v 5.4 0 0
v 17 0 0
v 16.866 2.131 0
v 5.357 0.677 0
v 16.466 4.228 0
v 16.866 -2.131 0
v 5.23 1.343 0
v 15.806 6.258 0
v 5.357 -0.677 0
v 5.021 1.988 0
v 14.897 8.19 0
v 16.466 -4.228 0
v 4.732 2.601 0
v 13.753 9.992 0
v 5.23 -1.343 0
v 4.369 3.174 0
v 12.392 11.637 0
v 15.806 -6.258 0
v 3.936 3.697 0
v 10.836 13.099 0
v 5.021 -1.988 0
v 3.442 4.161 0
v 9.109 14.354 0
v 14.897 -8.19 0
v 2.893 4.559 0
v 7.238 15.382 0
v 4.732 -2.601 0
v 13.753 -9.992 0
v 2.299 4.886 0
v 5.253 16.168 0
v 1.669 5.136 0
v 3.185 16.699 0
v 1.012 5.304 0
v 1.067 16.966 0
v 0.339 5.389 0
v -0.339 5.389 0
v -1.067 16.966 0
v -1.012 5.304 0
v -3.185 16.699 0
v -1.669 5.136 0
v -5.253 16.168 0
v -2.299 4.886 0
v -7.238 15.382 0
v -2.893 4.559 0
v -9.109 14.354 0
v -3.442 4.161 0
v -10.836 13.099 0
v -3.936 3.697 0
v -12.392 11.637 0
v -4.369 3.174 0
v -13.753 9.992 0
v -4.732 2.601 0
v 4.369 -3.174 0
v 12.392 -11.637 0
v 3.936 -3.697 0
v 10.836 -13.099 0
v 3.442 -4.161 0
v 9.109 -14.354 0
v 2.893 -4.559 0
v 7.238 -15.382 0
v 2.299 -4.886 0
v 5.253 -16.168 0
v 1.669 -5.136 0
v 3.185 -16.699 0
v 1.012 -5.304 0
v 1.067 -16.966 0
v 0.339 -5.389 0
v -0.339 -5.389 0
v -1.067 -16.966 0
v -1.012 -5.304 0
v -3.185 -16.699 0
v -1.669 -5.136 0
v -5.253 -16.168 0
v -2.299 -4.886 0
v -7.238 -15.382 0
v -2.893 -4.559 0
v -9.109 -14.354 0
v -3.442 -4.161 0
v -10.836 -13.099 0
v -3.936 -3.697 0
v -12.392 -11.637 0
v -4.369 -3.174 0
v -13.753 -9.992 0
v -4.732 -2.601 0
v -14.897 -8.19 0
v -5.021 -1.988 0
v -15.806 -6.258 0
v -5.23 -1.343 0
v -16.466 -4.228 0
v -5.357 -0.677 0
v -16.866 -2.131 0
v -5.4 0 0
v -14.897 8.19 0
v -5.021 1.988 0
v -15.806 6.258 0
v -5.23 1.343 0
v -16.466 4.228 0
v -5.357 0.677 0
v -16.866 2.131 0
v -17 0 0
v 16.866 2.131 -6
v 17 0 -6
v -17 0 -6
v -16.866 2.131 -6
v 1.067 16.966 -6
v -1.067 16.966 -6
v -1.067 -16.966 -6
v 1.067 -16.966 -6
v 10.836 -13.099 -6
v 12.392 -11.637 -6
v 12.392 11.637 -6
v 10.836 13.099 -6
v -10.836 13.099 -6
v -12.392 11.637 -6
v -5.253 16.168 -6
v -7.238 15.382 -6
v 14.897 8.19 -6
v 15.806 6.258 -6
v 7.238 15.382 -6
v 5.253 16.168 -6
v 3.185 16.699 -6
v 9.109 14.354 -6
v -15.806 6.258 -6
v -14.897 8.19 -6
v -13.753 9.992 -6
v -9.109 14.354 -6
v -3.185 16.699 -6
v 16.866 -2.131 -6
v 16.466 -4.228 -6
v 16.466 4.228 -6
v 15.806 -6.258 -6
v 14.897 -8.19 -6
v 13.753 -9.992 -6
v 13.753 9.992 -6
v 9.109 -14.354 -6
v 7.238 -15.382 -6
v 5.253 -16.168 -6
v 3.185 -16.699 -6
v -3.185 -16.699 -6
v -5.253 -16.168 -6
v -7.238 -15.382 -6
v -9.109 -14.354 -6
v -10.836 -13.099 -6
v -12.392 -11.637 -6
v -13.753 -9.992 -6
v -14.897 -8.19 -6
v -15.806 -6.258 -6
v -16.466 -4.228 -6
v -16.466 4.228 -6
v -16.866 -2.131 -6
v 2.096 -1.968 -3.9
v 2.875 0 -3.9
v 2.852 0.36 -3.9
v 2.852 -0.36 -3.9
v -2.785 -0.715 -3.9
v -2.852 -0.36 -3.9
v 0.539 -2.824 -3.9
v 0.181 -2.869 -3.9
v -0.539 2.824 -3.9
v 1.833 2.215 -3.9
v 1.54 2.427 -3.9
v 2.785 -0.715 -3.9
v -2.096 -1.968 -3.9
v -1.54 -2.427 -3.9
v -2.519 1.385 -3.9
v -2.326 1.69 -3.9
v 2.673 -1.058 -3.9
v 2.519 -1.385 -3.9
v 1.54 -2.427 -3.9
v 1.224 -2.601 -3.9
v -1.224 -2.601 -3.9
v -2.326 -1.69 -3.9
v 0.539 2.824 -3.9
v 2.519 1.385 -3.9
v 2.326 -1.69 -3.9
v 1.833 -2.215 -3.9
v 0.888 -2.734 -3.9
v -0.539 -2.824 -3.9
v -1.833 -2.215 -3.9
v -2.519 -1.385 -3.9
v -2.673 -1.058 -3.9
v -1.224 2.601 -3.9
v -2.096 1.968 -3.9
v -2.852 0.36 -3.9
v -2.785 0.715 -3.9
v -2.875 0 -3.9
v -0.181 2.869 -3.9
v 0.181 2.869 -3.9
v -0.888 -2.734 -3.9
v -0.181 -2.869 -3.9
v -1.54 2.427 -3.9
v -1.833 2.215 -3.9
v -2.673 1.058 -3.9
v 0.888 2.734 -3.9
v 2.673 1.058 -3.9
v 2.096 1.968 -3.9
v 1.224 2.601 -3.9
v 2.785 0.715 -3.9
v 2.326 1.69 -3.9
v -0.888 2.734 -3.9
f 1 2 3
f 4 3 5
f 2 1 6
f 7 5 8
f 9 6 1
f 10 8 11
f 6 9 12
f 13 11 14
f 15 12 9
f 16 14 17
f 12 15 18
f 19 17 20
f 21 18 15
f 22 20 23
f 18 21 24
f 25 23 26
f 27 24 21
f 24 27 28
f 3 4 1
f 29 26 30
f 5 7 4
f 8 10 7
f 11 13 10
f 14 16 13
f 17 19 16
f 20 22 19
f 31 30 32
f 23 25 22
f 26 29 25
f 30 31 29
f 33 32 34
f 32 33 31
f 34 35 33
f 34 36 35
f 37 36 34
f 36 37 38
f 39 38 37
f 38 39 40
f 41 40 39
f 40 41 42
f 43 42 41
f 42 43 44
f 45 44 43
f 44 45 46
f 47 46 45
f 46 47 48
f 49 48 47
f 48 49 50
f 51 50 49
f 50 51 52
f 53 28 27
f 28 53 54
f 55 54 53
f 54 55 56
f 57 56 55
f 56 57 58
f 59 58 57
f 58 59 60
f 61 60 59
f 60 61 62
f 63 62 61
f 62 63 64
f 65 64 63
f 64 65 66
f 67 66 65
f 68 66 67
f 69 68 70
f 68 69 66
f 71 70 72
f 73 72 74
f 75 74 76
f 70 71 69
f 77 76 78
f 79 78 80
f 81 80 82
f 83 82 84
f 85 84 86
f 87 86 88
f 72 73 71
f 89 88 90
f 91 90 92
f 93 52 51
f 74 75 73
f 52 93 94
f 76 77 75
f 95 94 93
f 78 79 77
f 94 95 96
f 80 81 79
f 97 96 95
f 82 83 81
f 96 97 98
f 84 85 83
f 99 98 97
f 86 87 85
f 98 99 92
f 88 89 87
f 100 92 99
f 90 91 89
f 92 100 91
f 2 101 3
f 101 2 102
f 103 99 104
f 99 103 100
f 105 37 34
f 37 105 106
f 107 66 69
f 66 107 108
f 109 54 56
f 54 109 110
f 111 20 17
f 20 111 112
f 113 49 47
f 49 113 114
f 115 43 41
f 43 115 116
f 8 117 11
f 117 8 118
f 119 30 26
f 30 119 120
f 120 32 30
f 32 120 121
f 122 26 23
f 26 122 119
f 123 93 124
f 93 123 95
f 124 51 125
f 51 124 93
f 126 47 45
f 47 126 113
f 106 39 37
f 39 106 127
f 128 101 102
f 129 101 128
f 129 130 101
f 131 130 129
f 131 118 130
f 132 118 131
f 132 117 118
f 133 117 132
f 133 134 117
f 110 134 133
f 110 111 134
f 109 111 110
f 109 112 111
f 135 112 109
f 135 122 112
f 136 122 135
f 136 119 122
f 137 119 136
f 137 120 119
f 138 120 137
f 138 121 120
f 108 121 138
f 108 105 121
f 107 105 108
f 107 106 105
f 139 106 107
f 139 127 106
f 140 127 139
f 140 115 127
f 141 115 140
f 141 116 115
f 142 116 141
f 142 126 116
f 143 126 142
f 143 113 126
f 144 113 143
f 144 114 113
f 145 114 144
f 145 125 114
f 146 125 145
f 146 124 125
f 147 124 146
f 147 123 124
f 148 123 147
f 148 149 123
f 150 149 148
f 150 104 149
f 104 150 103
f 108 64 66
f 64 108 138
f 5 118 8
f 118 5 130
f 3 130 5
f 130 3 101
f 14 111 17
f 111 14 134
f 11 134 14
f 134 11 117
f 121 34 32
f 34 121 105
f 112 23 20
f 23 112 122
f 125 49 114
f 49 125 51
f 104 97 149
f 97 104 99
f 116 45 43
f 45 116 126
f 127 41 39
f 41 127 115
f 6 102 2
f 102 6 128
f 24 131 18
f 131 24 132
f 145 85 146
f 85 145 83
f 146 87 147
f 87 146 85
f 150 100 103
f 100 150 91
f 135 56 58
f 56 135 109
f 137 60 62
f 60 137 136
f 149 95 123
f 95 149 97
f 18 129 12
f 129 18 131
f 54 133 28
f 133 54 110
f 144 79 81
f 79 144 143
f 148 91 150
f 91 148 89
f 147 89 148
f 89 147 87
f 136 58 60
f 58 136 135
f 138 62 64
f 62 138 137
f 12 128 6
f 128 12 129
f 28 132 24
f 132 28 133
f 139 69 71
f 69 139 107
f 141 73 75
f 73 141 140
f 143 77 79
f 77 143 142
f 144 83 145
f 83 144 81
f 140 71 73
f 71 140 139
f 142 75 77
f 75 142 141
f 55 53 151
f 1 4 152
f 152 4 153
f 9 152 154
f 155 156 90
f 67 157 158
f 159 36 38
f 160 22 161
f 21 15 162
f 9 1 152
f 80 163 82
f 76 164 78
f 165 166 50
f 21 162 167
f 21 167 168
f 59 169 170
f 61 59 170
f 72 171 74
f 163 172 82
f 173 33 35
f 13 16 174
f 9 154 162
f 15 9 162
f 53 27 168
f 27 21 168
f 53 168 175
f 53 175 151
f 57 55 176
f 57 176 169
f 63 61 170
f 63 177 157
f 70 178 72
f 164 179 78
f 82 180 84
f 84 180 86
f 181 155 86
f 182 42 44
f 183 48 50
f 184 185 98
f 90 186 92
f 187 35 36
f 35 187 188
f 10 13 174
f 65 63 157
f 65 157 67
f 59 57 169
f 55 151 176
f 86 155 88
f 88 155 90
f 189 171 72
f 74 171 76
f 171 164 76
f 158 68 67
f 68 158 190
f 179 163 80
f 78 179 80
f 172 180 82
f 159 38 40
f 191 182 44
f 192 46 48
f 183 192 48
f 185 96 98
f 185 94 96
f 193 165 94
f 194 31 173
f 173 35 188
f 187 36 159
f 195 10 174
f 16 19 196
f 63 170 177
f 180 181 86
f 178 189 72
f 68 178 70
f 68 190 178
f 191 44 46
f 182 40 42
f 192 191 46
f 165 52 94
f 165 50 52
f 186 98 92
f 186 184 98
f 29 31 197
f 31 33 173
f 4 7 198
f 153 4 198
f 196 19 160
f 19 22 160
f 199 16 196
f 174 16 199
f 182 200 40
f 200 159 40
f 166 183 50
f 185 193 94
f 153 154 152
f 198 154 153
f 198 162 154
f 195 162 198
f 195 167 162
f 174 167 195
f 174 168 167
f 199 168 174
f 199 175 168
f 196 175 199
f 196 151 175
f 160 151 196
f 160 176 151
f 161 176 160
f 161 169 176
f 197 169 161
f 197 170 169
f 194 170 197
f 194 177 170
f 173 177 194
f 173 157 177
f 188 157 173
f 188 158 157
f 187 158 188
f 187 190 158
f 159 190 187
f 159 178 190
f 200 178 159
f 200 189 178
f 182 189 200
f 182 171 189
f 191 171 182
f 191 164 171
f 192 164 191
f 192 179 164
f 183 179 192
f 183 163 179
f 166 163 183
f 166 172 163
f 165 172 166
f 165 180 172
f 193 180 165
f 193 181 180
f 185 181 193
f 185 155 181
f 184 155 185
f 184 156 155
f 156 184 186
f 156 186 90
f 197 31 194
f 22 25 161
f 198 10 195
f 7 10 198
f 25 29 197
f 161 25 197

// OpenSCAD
$fn = 50;


difference() {
	union() {
		translate(v = [0, 0, -3.0000000000]) {
			cylinder(h = 3, r = 7.0000000000);
		}
		translate(v = [0, 0, -6.0000000000]) {
			cylinder(h = 6, r = 17.0000000000);
		}
	}
	union() {
		translate(v = [0, 0, 0]) {
			rotate(a = [0, 0, 0]) {
				difference() {
					union() {
						#translate(v = [0, 0, -3.0000000000]) {
							cylinder(h = 3, r = 2.6000000000);
						}
						#translate(v = [0, 0, -3.9000000000]) {
							cylinder(h = 3.9000000000, r1 = 2.8750000000, r2 = 5.4000000000);
						}
						#translate(v = [0, 0, -3.0000000000]) {
							cylinder(h = 3, r = 2.8750000000);
						}
						#translate(v = [0, 0, -3.0000000000]) {
							cylinder(h = 3, r = 2.6000000000);
						}
					}
					union();
				}
			}
		}
	}
}
